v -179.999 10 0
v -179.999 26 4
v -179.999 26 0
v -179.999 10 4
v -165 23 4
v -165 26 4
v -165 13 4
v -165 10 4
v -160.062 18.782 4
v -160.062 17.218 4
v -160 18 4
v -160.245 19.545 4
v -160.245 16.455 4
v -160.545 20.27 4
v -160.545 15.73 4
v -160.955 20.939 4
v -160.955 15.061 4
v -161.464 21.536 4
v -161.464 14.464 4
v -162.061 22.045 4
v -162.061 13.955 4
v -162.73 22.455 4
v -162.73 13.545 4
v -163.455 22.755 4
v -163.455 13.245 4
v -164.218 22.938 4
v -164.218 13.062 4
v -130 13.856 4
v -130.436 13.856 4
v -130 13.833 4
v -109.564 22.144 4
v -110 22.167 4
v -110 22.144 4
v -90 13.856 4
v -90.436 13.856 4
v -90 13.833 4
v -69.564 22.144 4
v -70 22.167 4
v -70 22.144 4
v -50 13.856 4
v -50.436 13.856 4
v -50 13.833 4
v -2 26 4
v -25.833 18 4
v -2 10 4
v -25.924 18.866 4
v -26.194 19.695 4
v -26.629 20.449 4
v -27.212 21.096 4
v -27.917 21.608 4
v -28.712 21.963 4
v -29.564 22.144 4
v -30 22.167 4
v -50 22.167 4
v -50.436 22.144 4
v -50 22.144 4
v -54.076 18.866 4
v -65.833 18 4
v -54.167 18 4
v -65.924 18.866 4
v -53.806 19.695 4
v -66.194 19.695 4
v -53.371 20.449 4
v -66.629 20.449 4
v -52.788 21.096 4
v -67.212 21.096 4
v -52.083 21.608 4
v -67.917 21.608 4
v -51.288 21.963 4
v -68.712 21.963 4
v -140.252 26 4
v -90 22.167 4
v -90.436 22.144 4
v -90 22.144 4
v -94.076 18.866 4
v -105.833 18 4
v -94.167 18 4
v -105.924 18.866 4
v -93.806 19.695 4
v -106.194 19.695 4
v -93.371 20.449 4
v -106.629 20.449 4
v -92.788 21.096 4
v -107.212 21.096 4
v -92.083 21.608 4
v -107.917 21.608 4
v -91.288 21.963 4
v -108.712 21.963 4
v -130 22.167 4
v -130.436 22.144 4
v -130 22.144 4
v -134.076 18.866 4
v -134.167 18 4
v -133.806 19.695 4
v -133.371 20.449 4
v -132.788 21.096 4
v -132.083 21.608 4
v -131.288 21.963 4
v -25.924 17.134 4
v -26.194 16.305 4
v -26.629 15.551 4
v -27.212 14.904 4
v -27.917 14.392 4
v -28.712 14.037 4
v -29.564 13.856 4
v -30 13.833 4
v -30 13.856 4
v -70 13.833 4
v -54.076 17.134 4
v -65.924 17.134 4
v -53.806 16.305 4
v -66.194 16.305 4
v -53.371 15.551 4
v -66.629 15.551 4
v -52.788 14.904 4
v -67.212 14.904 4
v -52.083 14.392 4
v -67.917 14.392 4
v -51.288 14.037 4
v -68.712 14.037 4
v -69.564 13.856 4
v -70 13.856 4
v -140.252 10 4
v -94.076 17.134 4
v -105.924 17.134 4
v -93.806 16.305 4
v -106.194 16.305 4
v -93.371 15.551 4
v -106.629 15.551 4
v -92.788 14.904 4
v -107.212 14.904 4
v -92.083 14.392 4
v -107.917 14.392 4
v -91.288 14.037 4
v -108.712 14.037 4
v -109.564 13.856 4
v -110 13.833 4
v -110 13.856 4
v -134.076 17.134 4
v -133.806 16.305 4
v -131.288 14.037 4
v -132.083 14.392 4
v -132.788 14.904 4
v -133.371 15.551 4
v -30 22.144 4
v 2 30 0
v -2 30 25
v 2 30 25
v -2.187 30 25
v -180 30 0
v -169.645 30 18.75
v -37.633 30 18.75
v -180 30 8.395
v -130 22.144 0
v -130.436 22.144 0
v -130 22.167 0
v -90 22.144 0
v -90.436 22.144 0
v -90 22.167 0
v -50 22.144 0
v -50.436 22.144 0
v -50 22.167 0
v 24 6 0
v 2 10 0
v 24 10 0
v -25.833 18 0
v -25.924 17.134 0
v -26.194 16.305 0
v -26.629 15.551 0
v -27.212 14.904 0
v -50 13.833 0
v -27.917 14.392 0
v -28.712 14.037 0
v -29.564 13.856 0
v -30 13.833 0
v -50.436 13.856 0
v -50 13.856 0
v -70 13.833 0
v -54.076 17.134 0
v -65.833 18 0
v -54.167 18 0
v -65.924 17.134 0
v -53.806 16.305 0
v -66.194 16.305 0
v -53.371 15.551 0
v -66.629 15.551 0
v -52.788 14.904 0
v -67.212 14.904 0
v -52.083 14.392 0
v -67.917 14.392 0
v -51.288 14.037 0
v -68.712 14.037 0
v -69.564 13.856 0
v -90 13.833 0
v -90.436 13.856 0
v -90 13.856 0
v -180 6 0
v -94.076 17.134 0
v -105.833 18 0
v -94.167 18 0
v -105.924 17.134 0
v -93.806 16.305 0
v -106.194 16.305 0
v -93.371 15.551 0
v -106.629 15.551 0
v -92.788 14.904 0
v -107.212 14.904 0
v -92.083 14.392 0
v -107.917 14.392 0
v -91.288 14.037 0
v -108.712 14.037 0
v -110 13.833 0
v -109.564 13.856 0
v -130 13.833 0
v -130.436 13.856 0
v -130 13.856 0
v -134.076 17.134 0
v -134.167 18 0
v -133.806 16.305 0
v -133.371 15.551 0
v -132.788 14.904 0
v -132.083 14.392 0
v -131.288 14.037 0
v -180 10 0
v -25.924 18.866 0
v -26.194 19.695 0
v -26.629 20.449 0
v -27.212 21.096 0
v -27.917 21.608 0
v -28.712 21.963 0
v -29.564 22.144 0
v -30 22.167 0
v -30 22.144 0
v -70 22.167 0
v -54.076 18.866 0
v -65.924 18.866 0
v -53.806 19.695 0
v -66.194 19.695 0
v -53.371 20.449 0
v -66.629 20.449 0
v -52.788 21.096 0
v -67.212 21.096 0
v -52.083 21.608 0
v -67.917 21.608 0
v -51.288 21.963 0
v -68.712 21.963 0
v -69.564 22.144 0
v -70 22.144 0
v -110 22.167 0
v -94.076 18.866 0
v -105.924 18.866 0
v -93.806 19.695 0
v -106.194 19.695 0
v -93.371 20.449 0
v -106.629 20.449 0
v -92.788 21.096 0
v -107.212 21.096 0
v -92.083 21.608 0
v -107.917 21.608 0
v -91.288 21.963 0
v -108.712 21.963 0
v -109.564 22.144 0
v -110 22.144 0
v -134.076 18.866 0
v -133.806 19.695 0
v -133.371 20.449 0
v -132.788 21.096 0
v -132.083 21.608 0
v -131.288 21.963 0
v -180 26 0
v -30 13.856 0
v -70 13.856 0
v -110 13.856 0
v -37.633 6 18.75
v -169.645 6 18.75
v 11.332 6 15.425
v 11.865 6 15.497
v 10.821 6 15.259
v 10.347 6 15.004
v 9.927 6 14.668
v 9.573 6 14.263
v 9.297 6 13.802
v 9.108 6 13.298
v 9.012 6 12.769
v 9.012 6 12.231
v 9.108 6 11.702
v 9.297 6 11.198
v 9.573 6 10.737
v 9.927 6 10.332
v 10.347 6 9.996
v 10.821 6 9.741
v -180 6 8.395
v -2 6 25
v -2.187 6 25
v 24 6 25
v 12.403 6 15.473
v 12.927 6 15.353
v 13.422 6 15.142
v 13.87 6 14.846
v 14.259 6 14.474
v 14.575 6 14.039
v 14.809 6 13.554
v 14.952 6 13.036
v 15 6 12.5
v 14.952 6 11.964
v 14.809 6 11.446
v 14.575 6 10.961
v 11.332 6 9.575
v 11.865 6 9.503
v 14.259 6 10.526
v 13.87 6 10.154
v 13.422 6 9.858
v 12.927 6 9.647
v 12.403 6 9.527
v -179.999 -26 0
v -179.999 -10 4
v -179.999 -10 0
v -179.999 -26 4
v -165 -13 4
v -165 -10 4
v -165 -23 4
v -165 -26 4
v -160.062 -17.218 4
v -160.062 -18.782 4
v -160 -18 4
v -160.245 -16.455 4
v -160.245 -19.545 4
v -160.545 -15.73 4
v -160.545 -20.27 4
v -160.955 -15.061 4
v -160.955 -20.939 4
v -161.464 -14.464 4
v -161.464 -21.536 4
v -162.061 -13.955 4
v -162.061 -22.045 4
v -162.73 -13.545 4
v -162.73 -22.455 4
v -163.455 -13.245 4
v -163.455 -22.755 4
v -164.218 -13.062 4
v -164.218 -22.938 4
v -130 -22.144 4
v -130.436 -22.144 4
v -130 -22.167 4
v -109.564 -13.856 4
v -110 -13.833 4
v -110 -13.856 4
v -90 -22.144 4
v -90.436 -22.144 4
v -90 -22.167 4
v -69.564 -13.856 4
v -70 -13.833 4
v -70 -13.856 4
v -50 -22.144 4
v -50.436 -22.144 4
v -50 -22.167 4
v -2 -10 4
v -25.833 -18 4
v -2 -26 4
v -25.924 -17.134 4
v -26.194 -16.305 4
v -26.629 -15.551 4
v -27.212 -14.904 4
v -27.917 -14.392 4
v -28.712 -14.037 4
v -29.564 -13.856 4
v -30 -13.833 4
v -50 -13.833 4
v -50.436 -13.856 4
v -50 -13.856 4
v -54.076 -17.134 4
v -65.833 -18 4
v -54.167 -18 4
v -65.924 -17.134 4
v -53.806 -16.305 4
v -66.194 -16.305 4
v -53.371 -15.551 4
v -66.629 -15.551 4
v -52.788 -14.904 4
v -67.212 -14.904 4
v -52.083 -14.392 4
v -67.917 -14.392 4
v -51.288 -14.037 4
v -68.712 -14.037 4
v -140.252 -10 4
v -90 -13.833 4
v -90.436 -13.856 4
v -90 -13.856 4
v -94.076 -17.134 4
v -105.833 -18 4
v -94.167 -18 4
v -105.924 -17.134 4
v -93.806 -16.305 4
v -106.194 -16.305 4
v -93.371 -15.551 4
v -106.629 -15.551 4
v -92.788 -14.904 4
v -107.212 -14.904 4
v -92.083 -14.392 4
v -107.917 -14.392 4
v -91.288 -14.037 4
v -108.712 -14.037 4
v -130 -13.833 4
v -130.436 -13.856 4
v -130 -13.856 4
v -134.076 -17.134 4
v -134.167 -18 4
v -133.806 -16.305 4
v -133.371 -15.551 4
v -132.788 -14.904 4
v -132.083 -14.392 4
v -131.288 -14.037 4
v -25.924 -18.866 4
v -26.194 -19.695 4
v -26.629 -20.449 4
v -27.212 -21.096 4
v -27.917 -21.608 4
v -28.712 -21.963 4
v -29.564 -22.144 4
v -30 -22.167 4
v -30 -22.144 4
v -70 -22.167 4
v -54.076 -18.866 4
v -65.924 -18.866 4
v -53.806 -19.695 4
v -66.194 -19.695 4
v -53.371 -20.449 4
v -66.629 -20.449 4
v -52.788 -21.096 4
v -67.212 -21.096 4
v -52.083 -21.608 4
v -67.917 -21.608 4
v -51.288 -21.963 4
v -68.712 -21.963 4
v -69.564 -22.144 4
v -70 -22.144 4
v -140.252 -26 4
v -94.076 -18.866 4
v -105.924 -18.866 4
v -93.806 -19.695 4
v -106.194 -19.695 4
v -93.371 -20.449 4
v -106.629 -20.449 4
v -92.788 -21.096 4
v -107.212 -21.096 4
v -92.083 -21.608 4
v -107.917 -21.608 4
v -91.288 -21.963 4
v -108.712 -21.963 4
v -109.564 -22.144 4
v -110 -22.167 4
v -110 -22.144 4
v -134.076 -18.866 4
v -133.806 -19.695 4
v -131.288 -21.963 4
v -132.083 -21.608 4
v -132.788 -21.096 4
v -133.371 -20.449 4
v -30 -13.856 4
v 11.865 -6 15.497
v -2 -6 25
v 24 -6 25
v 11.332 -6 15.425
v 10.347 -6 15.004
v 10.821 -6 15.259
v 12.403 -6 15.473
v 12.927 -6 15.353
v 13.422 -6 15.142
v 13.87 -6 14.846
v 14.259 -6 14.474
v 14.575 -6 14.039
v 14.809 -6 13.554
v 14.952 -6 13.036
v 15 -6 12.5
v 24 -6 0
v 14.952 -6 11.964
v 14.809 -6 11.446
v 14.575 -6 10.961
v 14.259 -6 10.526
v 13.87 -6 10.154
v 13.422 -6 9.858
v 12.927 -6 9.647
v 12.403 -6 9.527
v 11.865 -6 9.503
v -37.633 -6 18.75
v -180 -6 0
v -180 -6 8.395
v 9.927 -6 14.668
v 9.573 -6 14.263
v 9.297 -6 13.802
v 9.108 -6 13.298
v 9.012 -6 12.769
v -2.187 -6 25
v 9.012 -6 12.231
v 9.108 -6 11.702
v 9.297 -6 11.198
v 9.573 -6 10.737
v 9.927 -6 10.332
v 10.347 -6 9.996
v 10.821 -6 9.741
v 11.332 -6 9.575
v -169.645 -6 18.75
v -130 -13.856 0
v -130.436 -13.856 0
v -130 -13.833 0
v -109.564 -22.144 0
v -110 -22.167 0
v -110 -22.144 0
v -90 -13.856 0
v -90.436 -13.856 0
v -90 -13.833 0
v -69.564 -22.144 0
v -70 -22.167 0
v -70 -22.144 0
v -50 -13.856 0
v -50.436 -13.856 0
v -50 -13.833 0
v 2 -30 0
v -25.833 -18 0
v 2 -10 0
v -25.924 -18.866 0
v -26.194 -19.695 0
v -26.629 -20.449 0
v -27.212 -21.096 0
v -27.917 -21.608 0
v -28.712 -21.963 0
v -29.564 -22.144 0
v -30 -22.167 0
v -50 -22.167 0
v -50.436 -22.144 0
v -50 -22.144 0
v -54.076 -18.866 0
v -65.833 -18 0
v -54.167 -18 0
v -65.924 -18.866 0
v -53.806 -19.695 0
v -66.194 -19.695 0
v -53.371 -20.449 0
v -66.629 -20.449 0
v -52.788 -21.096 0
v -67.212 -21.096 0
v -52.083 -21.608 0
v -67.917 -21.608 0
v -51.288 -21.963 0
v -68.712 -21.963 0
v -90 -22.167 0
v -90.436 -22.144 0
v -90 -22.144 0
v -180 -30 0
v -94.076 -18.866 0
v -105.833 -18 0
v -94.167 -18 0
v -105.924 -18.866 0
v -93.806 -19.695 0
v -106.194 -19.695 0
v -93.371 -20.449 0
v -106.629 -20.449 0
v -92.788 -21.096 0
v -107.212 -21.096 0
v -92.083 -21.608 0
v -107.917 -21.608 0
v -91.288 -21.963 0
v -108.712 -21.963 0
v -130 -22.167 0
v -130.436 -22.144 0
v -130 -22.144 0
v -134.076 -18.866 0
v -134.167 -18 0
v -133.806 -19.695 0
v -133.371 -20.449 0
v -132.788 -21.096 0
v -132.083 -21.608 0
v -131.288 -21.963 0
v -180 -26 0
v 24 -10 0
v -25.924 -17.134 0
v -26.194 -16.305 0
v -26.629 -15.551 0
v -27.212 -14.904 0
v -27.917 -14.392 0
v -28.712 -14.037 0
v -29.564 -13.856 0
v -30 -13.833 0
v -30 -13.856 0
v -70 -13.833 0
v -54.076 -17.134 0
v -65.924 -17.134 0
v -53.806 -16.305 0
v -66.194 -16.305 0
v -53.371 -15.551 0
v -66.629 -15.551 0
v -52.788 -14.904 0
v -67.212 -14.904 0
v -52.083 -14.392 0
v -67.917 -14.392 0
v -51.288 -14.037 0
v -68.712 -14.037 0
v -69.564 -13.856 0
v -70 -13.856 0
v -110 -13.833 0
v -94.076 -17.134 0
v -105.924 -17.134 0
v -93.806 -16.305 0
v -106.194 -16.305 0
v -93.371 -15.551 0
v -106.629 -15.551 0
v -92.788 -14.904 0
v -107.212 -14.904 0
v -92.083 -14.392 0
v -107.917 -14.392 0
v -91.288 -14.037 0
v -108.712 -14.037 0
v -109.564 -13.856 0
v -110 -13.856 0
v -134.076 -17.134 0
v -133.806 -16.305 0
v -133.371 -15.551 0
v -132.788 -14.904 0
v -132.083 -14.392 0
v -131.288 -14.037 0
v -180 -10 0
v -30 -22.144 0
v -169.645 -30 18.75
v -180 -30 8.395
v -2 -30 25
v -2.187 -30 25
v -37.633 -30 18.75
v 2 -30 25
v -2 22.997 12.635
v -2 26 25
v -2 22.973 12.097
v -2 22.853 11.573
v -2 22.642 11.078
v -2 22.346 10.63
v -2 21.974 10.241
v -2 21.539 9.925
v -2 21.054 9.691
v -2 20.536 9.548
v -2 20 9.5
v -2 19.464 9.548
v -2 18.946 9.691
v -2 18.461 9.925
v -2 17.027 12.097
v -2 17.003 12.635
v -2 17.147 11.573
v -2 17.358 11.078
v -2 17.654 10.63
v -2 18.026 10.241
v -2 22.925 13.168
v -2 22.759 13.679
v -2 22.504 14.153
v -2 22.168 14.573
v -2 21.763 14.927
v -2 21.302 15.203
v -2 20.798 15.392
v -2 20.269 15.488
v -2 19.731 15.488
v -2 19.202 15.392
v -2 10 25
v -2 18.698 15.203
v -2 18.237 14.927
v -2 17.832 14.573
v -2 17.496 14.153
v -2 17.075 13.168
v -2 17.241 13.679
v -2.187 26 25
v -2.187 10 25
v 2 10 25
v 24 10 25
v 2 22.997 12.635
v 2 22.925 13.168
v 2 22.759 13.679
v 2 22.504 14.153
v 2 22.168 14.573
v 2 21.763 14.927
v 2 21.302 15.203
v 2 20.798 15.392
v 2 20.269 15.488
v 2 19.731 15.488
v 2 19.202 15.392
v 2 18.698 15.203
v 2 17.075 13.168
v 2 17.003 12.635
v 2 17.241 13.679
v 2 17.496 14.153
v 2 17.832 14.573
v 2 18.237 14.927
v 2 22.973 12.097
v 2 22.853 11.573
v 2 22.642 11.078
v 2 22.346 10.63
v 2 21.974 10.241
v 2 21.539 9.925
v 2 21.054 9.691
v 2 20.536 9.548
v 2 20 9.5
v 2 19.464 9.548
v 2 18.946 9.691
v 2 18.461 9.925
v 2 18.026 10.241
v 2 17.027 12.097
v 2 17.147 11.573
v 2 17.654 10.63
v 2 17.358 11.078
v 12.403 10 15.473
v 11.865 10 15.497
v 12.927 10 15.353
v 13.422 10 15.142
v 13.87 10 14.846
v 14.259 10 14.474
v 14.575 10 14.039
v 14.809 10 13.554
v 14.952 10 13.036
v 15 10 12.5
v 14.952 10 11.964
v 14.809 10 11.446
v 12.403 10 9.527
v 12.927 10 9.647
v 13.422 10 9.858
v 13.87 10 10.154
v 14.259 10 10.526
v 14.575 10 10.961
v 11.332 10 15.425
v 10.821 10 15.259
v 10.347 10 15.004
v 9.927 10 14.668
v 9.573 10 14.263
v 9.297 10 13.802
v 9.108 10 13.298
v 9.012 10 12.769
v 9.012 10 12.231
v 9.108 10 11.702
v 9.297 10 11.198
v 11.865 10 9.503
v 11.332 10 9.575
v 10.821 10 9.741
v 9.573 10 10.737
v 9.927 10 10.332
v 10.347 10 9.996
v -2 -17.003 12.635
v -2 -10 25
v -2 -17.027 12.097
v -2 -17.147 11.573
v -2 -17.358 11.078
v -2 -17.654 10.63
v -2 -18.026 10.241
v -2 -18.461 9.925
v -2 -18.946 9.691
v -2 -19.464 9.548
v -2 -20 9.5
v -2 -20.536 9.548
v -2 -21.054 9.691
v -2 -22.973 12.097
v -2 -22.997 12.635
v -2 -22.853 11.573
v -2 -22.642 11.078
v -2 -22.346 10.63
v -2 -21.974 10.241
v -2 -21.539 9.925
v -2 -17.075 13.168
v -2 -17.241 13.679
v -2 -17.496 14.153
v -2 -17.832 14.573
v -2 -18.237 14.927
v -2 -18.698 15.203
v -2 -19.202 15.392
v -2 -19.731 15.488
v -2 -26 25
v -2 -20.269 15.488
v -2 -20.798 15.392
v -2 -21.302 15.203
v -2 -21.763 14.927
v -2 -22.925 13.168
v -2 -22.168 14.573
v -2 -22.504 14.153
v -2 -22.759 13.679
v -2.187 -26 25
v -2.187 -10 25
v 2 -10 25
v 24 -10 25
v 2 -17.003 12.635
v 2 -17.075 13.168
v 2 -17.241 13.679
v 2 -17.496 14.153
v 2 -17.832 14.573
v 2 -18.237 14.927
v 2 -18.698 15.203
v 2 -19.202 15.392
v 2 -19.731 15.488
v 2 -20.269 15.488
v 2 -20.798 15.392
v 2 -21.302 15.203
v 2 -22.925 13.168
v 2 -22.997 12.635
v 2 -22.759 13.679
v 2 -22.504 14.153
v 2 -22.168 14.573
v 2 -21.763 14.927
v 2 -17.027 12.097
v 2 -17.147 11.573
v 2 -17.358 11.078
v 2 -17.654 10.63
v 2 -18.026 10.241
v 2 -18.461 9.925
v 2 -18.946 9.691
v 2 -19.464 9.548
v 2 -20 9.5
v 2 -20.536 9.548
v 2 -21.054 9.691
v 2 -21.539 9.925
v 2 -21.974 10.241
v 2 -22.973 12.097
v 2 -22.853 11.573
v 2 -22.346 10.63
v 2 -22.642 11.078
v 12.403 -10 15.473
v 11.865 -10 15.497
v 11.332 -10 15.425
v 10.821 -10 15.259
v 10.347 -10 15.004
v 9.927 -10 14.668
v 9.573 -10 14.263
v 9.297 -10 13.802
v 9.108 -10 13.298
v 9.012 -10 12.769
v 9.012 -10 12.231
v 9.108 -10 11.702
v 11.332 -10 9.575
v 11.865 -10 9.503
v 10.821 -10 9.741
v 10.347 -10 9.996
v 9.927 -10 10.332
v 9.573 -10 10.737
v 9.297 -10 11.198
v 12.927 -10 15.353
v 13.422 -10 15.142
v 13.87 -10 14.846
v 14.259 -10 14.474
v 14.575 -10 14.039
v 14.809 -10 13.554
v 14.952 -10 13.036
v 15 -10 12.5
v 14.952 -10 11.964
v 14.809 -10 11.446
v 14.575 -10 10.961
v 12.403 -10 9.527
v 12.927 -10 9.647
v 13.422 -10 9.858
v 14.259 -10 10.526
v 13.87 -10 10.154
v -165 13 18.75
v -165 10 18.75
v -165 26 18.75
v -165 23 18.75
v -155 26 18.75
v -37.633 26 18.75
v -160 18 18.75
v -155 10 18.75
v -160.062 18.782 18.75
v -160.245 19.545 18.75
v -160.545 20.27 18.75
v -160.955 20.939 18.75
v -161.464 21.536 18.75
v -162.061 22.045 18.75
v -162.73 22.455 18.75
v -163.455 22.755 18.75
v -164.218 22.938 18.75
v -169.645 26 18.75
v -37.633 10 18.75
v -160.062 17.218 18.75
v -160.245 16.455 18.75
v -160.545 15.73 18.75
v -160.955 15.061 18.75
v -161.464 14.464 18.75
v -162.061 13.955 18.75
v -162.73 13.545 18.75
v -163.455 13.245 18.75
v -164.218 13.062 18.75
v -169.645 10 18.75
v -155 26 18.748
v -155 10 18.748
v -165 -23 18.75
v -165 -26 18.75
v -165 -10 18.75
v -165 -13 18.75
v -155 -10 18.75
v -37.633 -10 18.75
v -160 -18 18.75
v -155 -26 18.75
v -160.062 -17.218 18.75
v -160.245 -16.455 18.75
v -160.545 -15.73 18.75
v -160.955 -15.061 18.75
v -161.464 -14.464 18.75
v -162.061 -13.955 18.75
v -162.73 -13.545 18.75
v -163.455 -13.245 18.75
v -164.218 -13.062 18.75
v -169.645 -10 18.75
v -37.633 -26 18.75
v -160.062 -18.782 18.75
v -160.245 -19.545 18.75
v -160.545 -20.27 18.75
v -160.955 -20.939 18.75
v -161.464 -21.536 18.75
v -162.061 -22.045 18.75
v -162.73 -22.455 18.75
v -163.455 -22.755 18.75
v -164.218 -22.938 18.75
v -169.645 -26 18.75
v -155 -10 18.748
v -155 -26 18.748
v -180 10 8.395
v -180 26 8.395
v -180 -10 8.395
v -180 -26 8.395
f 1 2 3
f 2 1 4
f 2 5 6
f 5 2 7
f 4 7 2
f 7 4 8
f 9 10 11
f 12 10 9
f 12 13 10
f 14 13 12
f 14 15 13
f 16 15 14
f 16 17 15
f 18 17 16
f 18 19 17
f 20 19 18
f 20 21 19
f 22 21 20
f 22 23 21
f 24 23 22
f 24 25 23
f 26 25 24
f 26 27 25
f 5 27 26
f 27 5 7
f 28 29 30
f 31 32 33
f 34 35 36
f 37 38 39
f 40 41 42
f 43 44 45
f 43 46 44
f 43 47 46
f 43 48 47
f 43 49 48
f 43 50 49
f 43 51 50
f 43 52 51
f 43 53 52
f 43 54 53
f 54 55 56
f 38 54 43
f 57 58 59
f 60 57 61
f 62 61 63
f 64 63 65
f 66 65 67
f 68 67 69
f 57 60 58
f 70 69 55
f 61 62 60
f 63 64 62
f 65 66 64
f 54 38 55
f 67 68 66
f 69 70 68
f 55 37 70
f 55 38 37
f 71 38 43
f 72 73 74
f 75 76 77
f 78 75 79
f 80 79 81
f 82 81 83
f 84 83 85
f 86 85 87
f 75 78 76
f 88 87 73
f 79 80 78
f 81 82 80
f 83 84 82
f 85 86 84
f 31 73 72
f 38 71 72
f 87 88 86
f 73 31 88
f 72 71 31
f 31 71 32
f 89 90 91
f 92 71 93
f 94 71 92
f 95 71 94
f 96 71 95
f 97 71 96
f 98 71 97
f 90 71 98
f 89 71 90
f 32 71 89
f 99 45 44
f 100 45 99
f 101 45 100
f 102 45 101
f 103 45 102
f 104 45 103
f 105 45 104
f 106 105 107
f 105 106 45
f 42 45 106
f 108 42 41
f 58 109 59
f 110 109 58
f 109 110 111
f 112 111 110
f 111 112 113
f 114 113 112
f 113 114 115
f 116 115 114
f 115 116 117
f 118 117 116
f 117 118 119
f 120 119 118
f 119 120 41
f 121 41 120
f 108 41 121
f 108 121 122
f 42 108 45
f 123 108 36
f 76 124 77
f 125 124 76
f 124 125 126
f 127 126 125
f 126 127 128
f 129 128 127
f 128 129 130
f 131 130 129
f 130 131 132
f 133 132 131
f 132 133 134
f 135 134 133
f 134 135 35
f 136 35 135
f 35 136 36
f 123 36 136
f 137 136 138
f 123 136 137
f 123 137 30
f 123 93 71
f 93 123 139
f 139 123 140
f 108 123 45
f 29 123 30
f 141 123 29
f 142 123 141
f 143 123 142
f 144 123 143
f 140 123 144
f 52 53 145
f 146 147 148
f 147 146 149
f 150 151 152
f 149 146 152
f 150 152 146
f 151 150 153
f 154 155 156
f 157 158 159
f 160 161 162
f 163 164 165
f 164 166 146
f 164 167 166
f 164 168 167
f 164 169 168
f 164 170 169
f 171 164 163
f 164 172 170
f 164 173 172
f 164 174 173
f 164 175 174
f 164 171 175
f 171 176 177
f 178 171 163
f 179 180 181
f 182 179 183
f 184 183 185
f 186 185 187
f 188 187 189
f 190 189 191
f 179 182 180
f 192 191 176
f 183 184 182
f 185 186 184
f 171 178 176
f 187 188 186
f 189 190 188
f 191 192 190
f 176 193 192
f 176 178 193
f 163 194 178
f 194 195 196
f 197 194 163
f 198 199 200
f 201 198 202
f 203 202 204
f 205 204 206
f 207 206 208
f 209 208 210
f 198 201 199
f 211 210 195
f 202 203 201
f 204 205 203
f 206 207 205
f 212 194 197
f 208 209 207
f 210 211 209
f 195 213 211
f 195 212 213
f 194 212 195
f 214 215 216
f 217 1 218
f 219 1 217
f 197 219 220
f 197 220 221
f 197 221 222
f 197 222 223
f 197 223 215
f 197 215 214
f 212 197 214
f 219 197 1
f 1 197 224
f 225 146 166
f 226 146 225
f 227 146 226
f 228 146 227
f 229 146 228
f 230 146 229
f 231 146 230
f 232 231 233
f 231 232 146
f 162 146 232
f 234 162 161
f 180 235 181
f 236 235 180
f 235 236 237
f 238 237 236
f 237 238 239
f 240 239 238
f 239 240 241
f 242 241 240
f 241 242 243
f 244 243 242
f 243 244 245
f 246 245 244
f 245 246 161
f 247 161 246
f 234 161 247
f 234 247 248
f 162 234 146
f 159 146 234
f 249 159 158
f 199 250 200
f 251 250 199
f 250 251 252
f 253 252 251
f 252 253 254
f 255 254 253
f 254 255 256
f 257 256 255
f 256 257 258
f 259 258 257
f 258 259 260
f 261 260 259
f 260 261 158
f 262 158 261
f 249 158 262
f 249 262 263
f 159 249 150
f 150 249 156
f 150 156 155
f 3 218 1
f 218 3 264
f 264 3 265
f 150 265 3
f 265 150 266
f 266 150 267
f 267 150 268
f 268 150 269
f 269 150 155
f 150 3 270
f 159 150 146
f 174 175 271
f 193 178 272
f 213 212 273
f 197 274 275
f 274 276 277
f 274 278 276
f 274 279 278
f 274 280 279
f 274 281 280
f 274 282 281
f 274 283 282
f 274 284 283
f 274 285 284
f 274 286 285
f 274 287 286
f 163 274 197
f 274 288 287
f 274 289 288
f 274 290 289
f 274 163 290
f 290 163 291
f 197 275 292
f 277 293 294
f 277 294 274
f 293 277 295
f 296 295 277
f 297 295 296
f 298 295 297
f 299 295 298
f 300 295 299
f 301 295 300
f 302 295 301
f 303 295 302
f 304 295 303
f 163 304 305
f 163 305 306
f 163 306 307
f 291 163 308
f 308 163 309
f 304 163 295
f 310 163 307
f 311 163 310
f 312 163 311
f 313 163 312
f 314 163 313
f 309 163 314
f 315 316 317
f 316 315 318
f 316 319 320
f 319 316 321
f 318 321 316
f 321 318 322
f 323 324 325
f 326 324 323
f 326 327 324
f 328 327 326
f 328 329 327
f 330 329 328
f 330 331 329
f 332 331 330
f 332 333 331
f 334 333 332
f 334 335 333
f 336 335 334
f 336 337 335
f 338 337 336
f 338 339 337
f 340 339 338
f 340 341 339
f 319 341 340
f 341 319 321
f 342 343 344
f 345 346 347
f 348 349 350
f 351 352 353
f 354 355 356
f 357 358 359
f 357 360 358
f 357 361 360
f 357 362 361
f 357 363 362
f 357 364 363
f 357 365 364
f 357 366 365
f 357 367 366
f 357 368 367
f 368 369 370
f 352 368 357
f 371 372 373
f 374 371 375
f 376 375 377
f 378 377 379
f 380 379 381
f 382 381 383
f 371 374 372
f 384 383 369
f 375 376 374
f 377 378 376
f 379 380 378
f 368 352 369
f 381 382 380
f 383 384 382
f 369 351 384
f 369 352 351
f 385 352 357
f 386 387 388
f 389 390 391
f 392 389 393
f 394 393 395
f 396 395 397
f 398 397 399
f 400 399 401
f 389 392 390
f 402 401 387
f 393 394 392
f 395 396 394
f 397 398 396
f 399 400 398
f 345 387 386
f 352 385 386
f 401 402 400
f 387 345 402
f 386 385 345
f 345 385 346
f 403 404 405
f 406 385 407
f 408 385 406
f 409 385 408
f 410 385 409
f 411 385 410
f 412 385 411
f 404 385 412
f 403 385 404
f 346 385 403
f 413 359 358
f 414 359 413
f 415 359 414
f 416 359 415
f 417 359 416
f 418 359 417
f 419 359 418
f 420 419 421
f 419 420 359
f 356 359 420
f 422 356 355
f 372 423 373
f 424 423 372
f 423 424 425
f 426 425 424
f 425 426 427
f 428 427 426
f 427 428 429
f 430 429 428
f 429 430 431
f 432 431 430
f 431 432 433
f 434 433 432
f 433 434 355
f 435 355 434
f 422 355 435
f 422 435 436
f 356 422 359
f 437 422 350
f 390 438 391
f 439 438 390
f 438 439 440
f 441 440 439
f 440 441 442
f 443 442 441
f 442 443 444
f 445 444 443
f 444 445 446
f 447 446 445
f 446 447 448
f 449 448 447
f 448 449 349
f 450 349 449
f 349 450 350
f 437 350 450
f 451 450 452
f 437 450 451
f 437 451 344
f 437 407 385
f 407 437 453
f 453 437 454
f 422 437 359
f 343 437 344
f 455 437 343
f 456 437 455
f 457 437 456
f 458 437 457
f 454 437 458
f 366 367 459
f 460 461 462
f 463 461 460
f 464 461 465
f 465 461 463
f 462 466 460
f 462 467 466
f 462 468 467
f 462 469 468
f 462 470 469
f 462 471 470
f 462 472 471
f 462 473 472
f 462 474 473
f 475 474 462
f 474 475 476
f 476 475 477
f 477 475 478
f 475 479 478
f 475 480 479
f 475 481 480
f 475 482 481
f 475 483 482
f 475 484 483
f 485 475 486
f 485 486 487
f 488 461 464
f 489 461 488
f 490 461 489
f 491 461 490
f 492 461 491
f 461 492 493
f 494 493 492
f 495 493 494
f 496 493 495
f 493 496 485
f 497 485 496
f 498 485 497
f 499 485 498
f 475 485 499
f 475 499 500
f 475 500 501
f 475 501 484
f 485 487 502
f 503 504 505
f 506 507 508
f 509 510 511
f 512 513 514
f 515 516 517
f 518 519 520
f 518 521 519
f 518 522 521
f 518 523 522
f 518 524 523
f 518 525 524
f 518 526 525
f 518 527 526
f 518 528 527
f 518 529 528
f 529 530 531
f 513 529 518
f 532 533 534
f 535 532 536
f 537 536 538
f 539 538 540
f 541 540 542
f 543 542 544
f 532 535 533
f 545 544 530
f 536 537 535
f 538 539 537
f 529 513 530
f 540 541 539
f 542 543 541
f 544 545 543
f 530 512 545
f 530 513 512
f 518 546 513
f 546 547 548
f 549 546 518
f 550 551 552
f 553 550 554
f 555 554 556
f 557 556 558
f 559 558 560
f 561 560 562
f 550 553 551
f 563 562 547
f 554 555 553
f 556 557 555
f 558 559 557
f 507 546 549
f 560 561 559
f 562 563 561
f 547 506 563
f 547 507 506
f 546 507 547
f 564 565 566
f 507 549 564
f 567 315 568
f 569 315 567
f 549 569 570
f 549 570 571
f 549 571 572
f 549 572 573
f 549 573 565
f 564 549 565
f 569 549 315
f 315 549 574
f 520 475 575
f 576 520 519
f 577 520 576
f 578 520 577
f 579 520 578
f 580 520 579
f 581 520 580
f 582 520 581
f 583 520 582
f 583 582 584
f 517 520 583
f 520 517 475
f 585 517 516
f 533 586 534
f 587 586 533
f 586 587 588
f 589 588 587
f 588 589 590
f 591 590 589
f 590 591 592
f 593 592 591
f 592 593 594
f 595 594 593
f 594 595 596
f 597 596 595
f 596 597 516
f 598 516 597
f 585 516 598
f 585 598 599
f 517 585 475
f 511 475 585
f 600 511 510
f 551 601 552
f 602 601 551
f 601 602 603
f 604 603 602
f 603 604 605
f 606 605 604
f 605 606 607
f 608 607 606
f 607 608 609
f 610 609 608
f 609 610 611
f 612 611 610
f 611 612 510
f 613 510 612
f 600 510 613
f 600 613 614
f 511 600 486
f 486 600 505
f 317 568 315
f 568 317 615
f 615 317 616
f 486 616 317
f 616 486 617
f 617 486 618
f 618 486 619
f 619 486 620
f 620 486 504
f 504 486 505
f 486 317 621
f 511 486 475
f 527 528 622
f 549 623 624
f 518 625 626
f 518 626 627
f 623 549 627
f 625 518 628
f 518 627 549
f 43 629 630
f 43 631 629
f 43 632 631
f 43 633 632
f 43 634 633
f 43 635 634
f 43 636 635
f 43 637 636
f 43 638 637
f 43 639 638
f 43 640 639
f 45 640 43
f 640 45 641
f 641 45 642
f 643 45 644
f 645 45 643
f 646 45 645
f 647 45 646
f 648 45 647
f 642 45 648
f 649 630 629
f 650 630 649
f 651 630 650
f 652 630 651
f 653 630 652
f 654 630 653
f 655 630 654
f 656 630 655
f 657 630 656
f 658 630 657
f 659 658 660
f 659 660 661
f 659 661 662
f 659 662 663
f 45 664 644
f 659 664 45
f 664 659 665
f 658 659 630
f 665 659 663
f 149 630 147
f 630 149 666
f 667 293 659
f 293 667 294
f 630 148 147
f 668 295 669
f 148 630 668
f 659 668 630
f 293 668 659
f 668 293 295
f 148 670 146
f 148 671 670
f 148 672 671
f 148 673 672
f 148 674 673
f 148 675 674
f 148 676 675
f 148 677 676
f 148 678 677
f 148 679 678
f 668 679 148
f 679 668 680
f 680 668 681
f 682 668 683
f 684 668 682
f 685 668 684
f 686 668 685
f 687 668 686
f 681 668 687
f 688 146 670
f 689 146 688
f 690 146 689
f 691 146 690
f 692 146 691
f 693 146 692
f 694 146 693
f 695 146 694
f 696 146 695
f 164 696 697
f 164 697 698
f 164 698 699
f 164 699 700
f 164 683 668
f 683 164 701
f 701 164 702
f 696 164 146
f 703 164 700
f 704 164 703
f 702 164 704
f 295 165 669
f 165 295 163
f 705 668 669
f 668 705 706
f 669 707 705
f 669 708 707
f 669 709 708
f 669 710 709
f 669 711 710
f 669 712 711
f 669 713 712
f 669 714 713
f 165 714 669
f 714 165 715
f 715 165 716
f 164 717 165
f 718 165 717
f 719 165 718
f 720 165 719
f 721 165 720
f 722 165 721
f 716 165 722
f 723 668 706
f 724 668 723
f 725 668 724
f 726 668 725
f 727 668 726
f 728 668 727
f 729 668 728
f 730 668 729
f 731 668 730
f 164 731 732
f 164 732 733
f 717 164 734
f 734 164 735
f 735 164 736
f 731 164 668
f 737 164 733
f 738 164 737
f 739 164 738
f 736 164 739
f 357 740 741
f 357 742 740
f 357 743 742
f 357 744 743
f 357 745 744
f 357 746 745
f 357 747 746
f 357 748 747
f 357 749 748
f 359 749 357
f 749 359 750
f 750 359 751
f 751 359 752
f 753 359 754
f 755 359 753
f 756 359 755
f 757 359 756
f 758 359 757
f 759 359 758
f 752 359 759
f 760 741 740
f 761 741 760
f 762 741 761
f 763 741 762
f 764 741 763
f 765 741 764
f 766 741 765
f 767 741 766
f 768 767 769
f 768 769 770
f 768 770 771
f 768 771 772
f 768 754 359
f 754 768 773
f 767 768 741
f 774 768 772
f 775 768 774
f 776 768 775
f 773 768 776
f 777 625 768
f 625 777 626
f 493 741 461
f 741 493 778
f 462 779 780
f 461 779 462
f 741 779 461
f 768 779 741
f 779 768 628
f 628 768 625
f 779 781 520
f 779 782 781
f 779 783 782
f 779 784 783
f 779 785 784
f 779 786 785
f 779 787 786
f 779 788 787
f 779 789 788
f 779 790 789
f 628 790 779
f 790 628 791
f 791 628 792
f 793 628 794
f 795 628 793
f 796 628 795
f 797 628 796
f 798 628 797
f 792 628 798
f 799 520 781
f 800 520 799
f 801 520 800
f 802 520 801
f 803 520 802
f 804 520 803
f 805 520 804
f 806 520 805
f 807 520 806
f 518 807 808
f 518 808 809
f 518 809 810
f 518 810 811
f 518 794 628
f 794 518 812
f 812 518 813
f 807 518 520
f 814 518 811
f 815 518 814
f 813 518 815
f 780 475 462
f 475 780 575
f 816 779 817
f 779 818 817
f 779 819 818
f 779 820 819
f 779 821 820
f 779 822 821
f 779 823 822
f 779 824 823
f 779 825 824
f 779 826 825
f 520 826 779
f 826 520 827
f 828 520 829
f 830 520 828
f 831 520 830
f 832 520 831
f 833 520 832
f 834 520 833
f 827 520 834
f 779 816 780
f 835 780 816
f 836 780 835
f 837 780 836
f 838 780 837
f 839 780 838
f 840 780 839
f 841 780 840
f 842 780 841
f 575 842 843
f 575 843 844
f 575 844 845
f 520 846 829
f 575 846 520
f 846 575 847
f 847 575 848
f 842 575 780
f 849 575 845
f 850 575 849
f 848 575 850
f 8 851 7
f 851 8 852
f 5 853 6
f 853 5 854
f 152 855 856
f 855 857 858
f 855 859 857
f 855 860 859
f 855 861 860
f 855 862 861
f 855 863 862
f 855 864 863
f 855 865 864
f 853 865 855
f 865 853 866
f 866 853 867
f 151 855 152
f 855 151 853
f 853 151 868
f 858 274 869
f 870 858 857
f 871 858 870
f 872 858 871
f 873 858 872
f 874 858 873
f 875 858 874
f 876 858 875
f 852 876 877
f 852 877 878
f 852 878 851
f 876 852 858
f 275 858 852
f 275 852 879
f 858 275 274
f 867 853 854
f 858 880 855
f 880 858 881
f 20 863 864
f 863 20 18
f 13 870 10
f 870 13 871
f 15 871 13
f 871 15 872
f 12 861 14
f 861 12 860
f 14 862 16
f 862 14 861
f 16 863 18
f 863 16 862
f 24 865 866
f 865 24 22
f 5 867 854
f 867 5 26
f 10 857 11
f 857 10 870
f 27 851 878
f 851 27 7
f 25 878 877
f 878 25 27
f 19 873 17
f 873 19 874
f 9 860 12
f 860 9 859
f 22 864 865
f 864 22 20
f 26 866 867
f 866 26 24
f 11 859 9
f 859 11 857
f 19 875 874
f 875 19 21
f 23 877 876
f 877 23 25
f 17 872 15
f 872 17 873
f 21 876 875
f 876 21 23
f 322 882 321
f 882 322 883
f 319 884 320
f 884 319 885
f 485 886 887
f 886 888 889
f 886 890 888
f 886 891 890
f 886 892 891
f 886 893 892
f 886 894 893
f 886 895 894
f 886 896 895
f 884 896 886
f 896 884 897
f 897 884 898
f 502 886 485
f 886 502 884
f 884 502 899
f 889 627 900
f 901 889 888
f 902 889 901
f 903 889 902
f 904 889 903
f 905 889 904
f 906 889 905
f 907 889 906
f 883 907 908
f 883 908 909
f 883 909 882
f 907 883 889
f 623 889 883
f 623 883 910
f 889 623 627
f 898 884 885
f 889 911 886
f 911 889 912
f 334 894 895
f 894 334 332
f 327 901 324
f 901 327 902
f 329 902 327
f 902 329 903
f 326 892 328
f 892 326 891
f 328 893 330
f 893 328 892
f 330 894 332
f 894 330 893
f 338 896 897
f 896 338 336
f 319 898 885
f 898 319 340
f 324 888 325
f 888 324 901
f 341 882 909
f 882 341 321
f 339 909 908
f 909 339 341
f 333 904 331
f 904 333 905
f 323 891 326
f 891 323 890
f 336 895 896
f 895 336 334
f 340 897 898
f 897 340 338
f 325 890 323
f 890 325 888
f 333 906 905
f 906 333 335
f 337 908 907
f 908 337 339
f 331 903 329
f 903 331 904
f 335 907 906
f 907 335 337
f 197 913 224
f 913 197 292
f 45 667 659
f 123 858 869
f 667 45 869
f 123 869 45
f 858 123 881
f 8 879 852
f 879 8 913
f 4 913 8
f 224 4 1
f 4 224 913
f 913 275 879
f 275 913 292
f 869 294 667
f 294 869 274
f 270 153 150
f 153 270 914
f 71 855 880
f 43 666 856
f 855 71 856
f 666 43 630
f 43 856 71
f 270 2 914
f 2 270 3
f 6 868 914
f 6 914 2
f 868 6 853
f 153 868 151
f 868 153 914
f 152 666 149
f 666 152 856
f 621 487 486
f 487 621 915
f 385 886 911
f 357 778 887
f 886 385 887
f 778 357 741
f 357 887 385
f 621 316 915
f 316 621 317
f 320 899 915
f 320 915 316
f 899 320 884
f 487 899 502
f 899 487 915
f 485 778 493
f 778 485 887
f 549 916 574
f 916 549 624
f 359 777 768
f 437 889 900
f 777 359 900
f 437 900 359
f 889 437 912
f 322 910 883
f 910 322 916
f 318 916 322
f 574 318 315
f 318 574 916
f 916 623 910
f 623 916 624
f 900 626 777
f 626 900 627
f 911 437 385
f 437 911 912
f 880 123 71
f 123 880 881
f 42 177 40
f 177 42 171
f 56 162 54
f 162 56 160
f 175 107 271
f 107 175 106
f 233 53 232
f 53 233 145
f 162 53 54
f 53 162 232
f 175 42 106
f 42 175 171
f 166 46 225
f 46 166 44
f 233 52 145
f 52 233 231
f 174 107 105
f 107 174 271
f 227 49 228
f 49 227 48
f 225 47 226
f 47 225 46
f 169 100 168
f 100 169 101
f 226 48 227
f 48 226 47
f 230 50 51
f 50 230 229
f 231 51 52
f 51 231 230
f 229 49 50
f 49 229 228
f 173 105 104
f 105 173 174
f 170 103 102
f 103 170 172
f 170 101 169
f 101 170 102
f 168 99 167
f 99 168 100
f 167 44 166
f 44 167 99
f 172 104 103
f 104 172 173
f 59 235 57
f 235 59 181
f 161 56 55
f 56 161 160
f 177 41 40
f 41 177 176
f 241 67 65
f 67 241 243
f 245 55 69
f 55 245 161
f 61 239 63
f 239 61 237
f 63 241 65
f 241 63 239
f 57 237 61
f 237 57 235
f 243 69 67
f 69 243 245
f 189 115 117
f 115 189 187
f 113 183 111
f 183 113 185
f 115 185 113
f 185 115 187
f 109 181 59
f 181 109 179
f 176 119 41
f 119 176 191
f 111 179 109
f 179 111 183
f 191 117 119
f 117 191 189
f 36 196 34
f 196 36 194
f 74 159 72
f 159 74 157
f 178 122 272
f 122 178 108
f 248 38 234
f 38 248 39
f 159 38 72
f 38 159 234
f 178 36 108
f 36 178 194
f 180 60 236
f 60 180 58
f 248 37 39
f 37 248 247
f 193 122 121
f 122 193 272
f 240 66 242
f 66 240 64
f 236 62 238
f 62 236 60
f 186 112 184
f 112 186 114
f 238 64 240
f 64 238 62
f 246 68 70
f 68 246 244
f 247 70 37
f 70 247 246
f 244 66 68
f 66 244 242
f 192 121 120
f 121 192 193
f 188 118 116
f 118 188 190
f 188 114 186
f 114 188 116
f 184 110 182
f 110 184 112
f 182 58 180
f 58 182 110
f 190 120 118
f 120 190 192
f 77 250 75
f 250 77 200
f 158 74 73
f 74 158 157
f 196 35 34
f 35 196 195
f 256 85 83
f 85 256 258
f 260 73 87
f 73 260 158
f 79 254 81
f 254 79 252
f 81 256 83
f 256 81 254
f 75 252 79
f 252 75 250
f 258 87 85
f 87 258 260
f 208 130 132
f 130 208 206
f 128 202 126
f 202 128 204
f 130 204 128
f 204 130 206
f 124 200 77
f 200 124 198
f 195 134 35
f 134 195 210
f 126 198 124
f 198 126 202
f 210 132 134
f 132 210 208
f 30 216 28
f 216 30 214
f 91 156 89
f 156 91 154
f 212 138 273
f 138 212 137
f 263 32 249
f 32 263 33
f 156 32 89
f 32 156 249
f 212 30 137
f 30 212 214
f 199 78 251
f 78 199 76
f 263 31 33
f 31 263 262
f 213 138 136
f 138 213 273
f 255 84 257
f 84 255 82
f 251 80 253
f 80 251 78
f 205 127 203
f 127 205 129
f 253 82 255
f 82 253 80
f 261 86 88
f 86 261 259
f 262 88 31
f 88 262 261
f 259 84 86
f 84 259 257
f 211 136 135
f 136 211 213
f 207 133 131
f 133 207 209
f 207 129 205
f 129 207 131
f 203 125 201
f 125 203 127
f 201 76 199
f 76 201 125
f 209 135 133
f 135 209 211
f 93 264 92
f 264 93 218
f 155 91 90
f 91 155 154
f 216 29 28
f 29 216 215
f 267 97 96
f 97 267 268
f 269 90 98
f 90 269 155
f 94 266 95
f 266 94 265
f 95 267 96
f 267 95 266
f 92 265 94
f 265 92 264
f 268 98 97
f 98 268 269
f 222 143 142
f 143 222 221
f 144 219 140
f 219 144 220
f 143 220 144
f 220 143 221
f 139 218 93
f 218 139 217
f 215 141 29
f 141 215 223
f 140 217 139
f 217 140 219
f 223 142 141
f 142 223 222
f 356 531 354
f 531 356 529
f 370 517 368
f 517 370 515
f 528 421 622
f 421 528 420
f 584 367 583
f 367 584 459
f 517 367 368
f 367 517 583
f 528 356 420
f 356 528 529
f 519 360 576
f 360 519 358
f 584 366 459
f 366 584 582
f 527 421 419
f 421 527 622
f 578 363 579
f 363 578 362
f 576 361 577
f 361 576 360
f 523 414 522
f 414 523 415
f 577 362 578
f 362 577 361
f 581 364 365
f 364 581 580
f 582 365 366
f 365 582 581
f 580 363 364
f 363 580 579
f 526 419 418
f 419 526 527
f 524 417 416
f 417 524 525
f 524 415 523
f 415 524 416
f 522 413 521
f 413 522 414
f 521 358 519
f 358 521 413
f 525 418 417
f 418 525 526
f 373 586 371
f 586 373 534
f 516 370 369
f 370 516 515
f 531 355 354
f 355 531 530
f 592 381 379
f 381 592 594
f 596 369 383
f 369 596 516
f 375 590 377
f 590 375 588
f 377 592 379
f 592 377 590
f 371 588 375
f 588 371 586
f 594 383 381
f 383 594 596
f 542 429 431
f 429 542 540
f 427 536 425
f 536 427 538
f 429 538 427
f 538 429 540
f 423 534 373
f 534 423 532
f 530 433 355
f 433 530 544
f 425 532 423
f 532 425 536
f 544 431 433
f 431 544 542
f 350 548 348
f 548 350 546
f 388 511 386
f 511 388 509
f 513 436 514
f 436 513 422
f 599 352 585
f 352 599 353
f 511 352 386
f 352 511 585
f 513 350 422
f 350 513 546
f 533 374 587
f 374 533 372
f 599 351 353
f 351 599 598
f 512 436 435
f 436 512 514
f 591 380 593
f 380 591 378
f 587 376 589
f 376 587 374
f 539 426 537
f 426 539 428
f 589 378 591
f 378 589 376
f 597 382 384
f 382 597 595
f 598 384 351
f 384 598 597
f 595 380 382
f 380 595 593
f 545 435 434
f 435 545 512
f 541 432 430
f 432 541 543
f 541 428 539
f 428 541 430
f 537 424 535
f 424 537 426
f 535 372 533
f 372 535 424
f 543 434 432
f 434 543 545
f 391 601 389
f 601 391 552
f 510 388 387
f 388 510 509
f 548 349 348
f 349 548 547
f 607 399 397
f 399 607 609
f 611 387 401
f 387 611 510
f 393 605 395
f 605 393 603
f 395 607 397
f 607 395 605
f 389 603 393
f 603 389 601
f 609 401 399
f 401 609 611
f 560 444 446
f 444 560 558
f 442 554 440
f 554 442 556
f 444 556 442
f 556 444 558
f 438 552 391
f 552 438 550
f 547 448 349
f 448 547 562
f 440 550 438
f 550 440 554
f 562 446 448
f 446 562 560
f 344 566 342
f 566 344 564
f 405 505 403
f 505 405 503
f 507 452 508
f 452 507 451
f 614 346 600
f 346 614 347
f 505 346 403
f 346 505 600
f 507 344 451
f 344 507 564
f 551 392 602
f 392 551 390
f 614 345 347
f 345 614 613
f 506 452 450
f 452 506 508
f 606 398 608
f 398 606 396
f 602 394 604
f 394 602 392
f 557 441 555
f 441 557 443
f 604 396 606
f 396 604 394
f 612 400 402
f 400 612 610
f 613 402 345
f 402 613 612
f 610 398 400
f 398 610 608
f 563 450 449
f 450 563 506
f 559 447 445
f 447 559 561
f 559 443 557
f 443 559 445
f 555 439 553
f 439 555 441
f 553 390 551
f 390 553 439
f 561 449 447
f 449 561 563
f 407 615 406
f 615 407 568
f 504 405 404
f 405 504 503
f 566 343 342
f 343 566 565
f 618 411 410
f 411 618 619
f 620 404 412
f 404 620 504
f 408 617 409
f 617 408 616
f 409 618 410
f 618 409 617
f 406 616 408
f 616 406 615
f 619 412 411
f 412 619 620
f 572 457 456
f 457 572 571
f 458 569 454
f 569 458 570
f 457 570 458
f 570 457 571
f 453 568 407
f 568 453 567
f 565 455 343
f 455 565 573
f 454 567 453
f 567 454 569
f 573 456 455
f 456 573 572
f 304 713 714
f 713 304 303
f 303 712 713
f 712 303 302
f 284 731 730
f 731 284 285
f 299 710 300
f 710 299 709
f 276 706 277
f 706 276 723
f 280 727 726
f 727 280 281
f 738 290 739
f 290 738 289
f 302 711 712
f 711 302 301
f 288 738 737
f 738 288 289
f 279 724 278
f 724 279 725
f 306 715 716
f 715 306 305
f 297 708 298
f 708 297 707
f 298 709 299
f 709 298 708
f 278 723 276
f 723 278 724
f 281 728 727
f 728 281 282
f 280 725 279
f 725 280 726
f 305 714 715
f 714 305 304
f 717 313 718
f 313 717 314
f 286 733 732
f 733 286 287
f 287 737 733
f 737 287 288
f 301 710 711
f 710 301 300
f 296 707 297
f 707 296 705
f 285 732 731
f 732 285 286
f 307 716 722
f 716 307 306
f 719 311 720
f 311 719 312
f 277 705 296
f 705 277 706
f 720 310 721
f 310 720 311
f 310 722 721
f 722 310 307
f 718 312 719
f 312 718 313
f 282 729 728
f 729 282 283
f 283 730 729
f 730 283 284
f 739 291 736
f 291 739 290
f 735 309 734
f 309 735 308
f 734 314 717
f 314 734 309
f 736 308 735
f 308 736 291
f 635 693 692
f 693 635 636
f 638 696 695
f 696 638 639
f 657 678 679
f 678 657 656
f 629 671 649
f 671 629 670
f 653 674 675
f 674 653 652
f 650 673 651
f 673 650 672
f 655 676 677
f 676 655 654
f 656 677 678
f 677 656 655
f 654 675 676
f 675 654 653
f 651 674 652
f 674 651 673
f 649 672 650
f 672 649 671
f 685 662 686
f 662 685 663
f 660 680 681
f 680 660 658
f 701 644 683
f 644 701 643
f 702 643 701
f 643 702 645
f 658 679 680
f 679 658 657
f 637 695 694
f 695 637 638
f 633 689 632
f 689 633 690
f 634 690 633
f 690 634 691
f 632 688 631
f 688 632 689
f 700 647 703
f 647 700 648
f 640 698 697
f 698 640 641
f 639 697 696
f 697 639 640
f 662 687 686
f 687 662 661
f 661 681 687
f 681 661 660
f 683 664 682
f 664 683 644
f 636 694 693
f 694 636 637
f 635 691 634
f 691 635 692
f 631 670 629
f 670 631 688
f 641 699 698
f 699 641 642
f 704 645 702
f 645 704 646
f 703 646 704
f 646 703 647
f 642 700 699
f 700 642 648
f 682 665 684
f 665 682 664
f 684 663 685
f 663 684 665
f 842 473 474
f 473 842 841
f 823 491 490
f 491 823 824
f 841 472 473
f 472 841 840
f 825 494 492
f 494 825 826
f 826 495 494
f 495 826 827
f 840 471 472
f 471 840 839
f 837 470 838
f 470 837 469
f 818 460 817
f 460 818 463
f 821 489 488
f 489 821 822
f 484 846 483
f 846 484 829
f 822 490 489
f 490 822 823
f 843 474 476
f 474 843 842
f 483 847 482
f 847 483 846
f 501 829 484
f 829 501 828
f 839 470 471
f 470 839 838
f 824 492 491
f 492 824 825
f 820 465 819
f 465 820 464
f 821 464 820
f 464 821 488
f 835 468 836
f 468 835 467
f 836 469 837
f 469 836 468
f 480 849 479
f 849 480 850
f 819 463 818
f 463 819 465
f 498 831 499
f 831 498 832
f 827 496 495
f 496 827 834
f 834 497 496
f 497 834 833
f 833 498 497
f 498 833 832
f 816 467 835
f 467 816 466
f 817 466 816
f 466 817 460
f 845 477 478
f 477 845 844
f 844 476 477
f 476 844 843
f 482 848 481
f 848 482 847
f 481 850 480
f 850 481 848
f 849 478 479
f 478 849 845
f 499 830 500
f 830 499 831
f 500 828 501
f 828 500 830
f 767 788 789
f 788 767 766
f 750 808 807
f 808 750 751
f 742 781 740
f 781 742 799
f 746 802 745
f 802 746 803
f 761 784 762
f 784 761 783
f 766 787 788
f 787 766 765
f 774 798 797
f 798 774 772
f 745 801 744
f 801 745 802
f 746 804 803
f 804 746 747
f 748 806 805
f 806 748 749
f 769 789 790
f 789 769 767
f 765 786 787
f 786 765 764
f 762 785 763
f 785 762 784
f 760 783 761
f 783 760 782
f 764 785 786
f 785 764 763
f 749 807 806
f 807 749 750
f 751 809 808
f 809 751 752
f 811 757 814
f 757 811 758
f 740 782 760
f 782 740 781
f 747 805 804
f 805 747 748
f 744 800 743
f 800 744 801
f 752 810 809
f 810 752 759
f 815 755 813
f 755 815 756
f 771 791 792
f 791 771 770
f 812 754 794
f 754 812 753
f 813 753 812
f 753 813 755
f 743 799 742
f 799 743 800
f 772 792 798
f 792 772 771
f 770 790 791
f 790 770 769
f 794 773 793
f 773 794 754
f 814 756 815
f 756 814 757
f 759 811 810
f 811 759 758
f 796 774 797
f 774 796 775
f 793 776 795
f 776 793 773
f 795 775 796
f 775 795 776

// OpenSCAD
module mimic()
{
    translate([1000,0,0])import("../stl/filament-mount.stl");
}
//mimic();
spool_r=160; //radius of spool that should fit
al_ext=20;  //width of aluminum extrusion
holder_w=25; //width of holder part that contacts extrusion
plate_t=4;
space=40;
ep=0.001;
rod_r=5;
//spine_l is the length of the spin
spine_l=spool_r+rod_r*2+10;
m5_slot=6;
module spine()
{
    
    translate([-(spine_l/2-ep),(space/2-plate_t/2),plate_t/2])cube([spine_l,al_ext+plate_t,plate_t],center=true);
    translate([-(spine_l/2-ep),-(space/2-plate_t/2),plate_t/2])cube([spine_l,al_ext+plate_t,plate_t],center=true);
}
module ext_holder()
{
    //right side
    translate([0,(space/2-plate_t/2),holder_w/2])cube([plate_t,al_ext+plate_t,holder_w],center=true);
    translate([(al_ext/2+plate_t/2),(space/2-plate_t/2-al_ext/2),holder_w/2])cube([al_ext+plate_t,plate_t,holder_w],center=true);
    
    
    //left side
    translate([0,-(space/2-plate_t/2),holder_w/2])cube([plate_t,al_ext+plate_t,holder_w],center=true);
    translate([(al_ext/2+plate_t/2),-(space/2-plate_t/2-al_ext/2),holder_w/2])cube([al_ext+plate_t,plate_t,holder_w],center=true);
}

module rod_holder()
{
    //right side
    translate([-spool_r,(space/2-plate_t/2),holder_w*3/8])difference()
    {
        cube([rod_r*2,al_ext,holder_w*.75],center=true);
        translate([-rod_r,0,0])cylinder(r=rod_r,h=holder_w*2,center=true,$fn=40);
    }
    
    //left side
    translate([-spool_r,-(space/2-plate_t/2),holder_w*3/8])difference()
    {
        cube([rod_r*2,al_ext,holder_w*.75],center=true);
        translate([-rod_r,0,0])cylinder(r=rod_r,h=holder_w*2,center=true,$fn=40);
    }
}

module stiff_bit()
{
    //makes the bracket stiffer
    difference()
    {
        translate([-spine_l/2,0,holder_w*3/8])cube([spine_l,plate_t,holder_w*3/4],center=true);
        translate([-(spine_l+holder_w),0,holder_w*3/4])rotate([0,45,0])cube([holder_w*2,plate_t*2,holder_w*2],center=true);
    }
    //angled peice
    difference()
    {
        rotate([0,-10,0])translate([0,0,holder_w/2])cube([spine_l/2,plate_t,holder_w],center=true);
        translate([0,0,-holder_w/2])cube([spine_l,plate_t*2,holder_w],center=true);
        translate([0,0,holder_w*3/2])cube([spine_l,plate_t*2,holder_w],center=true);
        translate([spine_l/2,0,0])cube([spine_l,plate_t*2,holder_w*3],center=true);
    }
}
module stiff()
{
    translate([0,(space/2-plate_t/2-al_ext/2),0])stiff_bit();
    translate([0,(space/2-plate_t/2+al_ext/2),0])stiff_bit();
    translate([0,-(space/2-plate_t/2-al_ext/2),0])stiff_bit();
    translate([0,-(space/2-plate_t/2+al_ext/2),0])stiff_bit();
    //rod holder
    side=(holder_w*3/4)*(sqrt(2));
    translate([-(spool_r-rod_r+ep*2),-(space/2-plate_t/2),0])difference()
    {
        rotate([0,45,0])cube([side,(al_ext+plate_t-ep),side],center=true);
        
        translate([0,0,-side])cube([side*2,2*(al_ext+plate_t),side*2],center=true);
        translate([-side,0,0])cube([side*2,2*(al_ext+plate_t),side*2],center=true);
    }
    translate([-(spool_r-rod_r+ep*2),(space/2-plate_t/2),0])difference()
    {
        rotate([0,45,0])cube([side,(al_ext+plate_t-ep),side],center=true);
        
        translate([0,0,-side])cube([side*2,2*(al_ext+plate_t),side*2],center=true);
        translate([-side,0,0])cube([side*2,2*(al_ext+plate_t),side*2],center=true);
    }
}

module screw_holes()
{
    translate([(al_ext/2+plate_t/2),(space/2-plate_t/2-al_ext/2),holder_w/2])rotate([90,0,0])cylinder(r=m5_slot/2,h=plate_t*2,center=true,$fn=35);
    translate([0,(space/2),holder_w/2])rotate([0,90,0])cylinder(r=m5_slot/2,h=plate_t*2,center=true,$fn=35);
    
    
    translate([(al_ext/2+plate_t/2),-(space/2-plate_t/2-al_ext/2),holder_w/2])rotate([90,0,0])cylinder(r=m5_slot/2,h=plate_t*2,center=true,$fn=35);
    translate([0,-(space/2),holder_w/2])rotate([0,90,0])cylinder(r=m5_slot/2,h=plate_t*2,center=true,$fn=35);
}

module speed_slot()
{
    $fn=30;
    width=holder_w/3;
    length=spool_r/8;
    cube([length,width,plate_t*4],center=true);
    translate([length/2,0,0])cylinder(r=width/2,h=plate_t*4,center=true);
    translate([-length/2,0,0])cylinder(r=width/2,h=plate_t*4,center=true);
}
module speed_holes()
{
    translate([0,(space/2-plate_t/2),0])
    {
        translate([-(spool_r/2-spool_r/4),0,0])speed_slot();
        translate([-spool_r/2,0,0])speed_slot();
        translate([-(spool_r/2+spool_r/4),0,0])speed_slot();
    }
    
    translate([0,-(space/2-plate_t/2),0])
    {
        translate([-(spool_r/2-spool_r/4),0,0])speed_slot();
        translate([-spool_r/2,0,0])speed_slot();
        translate([-(spool_r/2+spool_r/4),0,0])speed_slot();
    }
}

module complete()
{
    difference()
    {
        union()
        {
            spine();
            ext_holder();
            rod_holder();
            stiff();
        }
        speed_holes();
        screw_holes();
    }
}
complete();
    
